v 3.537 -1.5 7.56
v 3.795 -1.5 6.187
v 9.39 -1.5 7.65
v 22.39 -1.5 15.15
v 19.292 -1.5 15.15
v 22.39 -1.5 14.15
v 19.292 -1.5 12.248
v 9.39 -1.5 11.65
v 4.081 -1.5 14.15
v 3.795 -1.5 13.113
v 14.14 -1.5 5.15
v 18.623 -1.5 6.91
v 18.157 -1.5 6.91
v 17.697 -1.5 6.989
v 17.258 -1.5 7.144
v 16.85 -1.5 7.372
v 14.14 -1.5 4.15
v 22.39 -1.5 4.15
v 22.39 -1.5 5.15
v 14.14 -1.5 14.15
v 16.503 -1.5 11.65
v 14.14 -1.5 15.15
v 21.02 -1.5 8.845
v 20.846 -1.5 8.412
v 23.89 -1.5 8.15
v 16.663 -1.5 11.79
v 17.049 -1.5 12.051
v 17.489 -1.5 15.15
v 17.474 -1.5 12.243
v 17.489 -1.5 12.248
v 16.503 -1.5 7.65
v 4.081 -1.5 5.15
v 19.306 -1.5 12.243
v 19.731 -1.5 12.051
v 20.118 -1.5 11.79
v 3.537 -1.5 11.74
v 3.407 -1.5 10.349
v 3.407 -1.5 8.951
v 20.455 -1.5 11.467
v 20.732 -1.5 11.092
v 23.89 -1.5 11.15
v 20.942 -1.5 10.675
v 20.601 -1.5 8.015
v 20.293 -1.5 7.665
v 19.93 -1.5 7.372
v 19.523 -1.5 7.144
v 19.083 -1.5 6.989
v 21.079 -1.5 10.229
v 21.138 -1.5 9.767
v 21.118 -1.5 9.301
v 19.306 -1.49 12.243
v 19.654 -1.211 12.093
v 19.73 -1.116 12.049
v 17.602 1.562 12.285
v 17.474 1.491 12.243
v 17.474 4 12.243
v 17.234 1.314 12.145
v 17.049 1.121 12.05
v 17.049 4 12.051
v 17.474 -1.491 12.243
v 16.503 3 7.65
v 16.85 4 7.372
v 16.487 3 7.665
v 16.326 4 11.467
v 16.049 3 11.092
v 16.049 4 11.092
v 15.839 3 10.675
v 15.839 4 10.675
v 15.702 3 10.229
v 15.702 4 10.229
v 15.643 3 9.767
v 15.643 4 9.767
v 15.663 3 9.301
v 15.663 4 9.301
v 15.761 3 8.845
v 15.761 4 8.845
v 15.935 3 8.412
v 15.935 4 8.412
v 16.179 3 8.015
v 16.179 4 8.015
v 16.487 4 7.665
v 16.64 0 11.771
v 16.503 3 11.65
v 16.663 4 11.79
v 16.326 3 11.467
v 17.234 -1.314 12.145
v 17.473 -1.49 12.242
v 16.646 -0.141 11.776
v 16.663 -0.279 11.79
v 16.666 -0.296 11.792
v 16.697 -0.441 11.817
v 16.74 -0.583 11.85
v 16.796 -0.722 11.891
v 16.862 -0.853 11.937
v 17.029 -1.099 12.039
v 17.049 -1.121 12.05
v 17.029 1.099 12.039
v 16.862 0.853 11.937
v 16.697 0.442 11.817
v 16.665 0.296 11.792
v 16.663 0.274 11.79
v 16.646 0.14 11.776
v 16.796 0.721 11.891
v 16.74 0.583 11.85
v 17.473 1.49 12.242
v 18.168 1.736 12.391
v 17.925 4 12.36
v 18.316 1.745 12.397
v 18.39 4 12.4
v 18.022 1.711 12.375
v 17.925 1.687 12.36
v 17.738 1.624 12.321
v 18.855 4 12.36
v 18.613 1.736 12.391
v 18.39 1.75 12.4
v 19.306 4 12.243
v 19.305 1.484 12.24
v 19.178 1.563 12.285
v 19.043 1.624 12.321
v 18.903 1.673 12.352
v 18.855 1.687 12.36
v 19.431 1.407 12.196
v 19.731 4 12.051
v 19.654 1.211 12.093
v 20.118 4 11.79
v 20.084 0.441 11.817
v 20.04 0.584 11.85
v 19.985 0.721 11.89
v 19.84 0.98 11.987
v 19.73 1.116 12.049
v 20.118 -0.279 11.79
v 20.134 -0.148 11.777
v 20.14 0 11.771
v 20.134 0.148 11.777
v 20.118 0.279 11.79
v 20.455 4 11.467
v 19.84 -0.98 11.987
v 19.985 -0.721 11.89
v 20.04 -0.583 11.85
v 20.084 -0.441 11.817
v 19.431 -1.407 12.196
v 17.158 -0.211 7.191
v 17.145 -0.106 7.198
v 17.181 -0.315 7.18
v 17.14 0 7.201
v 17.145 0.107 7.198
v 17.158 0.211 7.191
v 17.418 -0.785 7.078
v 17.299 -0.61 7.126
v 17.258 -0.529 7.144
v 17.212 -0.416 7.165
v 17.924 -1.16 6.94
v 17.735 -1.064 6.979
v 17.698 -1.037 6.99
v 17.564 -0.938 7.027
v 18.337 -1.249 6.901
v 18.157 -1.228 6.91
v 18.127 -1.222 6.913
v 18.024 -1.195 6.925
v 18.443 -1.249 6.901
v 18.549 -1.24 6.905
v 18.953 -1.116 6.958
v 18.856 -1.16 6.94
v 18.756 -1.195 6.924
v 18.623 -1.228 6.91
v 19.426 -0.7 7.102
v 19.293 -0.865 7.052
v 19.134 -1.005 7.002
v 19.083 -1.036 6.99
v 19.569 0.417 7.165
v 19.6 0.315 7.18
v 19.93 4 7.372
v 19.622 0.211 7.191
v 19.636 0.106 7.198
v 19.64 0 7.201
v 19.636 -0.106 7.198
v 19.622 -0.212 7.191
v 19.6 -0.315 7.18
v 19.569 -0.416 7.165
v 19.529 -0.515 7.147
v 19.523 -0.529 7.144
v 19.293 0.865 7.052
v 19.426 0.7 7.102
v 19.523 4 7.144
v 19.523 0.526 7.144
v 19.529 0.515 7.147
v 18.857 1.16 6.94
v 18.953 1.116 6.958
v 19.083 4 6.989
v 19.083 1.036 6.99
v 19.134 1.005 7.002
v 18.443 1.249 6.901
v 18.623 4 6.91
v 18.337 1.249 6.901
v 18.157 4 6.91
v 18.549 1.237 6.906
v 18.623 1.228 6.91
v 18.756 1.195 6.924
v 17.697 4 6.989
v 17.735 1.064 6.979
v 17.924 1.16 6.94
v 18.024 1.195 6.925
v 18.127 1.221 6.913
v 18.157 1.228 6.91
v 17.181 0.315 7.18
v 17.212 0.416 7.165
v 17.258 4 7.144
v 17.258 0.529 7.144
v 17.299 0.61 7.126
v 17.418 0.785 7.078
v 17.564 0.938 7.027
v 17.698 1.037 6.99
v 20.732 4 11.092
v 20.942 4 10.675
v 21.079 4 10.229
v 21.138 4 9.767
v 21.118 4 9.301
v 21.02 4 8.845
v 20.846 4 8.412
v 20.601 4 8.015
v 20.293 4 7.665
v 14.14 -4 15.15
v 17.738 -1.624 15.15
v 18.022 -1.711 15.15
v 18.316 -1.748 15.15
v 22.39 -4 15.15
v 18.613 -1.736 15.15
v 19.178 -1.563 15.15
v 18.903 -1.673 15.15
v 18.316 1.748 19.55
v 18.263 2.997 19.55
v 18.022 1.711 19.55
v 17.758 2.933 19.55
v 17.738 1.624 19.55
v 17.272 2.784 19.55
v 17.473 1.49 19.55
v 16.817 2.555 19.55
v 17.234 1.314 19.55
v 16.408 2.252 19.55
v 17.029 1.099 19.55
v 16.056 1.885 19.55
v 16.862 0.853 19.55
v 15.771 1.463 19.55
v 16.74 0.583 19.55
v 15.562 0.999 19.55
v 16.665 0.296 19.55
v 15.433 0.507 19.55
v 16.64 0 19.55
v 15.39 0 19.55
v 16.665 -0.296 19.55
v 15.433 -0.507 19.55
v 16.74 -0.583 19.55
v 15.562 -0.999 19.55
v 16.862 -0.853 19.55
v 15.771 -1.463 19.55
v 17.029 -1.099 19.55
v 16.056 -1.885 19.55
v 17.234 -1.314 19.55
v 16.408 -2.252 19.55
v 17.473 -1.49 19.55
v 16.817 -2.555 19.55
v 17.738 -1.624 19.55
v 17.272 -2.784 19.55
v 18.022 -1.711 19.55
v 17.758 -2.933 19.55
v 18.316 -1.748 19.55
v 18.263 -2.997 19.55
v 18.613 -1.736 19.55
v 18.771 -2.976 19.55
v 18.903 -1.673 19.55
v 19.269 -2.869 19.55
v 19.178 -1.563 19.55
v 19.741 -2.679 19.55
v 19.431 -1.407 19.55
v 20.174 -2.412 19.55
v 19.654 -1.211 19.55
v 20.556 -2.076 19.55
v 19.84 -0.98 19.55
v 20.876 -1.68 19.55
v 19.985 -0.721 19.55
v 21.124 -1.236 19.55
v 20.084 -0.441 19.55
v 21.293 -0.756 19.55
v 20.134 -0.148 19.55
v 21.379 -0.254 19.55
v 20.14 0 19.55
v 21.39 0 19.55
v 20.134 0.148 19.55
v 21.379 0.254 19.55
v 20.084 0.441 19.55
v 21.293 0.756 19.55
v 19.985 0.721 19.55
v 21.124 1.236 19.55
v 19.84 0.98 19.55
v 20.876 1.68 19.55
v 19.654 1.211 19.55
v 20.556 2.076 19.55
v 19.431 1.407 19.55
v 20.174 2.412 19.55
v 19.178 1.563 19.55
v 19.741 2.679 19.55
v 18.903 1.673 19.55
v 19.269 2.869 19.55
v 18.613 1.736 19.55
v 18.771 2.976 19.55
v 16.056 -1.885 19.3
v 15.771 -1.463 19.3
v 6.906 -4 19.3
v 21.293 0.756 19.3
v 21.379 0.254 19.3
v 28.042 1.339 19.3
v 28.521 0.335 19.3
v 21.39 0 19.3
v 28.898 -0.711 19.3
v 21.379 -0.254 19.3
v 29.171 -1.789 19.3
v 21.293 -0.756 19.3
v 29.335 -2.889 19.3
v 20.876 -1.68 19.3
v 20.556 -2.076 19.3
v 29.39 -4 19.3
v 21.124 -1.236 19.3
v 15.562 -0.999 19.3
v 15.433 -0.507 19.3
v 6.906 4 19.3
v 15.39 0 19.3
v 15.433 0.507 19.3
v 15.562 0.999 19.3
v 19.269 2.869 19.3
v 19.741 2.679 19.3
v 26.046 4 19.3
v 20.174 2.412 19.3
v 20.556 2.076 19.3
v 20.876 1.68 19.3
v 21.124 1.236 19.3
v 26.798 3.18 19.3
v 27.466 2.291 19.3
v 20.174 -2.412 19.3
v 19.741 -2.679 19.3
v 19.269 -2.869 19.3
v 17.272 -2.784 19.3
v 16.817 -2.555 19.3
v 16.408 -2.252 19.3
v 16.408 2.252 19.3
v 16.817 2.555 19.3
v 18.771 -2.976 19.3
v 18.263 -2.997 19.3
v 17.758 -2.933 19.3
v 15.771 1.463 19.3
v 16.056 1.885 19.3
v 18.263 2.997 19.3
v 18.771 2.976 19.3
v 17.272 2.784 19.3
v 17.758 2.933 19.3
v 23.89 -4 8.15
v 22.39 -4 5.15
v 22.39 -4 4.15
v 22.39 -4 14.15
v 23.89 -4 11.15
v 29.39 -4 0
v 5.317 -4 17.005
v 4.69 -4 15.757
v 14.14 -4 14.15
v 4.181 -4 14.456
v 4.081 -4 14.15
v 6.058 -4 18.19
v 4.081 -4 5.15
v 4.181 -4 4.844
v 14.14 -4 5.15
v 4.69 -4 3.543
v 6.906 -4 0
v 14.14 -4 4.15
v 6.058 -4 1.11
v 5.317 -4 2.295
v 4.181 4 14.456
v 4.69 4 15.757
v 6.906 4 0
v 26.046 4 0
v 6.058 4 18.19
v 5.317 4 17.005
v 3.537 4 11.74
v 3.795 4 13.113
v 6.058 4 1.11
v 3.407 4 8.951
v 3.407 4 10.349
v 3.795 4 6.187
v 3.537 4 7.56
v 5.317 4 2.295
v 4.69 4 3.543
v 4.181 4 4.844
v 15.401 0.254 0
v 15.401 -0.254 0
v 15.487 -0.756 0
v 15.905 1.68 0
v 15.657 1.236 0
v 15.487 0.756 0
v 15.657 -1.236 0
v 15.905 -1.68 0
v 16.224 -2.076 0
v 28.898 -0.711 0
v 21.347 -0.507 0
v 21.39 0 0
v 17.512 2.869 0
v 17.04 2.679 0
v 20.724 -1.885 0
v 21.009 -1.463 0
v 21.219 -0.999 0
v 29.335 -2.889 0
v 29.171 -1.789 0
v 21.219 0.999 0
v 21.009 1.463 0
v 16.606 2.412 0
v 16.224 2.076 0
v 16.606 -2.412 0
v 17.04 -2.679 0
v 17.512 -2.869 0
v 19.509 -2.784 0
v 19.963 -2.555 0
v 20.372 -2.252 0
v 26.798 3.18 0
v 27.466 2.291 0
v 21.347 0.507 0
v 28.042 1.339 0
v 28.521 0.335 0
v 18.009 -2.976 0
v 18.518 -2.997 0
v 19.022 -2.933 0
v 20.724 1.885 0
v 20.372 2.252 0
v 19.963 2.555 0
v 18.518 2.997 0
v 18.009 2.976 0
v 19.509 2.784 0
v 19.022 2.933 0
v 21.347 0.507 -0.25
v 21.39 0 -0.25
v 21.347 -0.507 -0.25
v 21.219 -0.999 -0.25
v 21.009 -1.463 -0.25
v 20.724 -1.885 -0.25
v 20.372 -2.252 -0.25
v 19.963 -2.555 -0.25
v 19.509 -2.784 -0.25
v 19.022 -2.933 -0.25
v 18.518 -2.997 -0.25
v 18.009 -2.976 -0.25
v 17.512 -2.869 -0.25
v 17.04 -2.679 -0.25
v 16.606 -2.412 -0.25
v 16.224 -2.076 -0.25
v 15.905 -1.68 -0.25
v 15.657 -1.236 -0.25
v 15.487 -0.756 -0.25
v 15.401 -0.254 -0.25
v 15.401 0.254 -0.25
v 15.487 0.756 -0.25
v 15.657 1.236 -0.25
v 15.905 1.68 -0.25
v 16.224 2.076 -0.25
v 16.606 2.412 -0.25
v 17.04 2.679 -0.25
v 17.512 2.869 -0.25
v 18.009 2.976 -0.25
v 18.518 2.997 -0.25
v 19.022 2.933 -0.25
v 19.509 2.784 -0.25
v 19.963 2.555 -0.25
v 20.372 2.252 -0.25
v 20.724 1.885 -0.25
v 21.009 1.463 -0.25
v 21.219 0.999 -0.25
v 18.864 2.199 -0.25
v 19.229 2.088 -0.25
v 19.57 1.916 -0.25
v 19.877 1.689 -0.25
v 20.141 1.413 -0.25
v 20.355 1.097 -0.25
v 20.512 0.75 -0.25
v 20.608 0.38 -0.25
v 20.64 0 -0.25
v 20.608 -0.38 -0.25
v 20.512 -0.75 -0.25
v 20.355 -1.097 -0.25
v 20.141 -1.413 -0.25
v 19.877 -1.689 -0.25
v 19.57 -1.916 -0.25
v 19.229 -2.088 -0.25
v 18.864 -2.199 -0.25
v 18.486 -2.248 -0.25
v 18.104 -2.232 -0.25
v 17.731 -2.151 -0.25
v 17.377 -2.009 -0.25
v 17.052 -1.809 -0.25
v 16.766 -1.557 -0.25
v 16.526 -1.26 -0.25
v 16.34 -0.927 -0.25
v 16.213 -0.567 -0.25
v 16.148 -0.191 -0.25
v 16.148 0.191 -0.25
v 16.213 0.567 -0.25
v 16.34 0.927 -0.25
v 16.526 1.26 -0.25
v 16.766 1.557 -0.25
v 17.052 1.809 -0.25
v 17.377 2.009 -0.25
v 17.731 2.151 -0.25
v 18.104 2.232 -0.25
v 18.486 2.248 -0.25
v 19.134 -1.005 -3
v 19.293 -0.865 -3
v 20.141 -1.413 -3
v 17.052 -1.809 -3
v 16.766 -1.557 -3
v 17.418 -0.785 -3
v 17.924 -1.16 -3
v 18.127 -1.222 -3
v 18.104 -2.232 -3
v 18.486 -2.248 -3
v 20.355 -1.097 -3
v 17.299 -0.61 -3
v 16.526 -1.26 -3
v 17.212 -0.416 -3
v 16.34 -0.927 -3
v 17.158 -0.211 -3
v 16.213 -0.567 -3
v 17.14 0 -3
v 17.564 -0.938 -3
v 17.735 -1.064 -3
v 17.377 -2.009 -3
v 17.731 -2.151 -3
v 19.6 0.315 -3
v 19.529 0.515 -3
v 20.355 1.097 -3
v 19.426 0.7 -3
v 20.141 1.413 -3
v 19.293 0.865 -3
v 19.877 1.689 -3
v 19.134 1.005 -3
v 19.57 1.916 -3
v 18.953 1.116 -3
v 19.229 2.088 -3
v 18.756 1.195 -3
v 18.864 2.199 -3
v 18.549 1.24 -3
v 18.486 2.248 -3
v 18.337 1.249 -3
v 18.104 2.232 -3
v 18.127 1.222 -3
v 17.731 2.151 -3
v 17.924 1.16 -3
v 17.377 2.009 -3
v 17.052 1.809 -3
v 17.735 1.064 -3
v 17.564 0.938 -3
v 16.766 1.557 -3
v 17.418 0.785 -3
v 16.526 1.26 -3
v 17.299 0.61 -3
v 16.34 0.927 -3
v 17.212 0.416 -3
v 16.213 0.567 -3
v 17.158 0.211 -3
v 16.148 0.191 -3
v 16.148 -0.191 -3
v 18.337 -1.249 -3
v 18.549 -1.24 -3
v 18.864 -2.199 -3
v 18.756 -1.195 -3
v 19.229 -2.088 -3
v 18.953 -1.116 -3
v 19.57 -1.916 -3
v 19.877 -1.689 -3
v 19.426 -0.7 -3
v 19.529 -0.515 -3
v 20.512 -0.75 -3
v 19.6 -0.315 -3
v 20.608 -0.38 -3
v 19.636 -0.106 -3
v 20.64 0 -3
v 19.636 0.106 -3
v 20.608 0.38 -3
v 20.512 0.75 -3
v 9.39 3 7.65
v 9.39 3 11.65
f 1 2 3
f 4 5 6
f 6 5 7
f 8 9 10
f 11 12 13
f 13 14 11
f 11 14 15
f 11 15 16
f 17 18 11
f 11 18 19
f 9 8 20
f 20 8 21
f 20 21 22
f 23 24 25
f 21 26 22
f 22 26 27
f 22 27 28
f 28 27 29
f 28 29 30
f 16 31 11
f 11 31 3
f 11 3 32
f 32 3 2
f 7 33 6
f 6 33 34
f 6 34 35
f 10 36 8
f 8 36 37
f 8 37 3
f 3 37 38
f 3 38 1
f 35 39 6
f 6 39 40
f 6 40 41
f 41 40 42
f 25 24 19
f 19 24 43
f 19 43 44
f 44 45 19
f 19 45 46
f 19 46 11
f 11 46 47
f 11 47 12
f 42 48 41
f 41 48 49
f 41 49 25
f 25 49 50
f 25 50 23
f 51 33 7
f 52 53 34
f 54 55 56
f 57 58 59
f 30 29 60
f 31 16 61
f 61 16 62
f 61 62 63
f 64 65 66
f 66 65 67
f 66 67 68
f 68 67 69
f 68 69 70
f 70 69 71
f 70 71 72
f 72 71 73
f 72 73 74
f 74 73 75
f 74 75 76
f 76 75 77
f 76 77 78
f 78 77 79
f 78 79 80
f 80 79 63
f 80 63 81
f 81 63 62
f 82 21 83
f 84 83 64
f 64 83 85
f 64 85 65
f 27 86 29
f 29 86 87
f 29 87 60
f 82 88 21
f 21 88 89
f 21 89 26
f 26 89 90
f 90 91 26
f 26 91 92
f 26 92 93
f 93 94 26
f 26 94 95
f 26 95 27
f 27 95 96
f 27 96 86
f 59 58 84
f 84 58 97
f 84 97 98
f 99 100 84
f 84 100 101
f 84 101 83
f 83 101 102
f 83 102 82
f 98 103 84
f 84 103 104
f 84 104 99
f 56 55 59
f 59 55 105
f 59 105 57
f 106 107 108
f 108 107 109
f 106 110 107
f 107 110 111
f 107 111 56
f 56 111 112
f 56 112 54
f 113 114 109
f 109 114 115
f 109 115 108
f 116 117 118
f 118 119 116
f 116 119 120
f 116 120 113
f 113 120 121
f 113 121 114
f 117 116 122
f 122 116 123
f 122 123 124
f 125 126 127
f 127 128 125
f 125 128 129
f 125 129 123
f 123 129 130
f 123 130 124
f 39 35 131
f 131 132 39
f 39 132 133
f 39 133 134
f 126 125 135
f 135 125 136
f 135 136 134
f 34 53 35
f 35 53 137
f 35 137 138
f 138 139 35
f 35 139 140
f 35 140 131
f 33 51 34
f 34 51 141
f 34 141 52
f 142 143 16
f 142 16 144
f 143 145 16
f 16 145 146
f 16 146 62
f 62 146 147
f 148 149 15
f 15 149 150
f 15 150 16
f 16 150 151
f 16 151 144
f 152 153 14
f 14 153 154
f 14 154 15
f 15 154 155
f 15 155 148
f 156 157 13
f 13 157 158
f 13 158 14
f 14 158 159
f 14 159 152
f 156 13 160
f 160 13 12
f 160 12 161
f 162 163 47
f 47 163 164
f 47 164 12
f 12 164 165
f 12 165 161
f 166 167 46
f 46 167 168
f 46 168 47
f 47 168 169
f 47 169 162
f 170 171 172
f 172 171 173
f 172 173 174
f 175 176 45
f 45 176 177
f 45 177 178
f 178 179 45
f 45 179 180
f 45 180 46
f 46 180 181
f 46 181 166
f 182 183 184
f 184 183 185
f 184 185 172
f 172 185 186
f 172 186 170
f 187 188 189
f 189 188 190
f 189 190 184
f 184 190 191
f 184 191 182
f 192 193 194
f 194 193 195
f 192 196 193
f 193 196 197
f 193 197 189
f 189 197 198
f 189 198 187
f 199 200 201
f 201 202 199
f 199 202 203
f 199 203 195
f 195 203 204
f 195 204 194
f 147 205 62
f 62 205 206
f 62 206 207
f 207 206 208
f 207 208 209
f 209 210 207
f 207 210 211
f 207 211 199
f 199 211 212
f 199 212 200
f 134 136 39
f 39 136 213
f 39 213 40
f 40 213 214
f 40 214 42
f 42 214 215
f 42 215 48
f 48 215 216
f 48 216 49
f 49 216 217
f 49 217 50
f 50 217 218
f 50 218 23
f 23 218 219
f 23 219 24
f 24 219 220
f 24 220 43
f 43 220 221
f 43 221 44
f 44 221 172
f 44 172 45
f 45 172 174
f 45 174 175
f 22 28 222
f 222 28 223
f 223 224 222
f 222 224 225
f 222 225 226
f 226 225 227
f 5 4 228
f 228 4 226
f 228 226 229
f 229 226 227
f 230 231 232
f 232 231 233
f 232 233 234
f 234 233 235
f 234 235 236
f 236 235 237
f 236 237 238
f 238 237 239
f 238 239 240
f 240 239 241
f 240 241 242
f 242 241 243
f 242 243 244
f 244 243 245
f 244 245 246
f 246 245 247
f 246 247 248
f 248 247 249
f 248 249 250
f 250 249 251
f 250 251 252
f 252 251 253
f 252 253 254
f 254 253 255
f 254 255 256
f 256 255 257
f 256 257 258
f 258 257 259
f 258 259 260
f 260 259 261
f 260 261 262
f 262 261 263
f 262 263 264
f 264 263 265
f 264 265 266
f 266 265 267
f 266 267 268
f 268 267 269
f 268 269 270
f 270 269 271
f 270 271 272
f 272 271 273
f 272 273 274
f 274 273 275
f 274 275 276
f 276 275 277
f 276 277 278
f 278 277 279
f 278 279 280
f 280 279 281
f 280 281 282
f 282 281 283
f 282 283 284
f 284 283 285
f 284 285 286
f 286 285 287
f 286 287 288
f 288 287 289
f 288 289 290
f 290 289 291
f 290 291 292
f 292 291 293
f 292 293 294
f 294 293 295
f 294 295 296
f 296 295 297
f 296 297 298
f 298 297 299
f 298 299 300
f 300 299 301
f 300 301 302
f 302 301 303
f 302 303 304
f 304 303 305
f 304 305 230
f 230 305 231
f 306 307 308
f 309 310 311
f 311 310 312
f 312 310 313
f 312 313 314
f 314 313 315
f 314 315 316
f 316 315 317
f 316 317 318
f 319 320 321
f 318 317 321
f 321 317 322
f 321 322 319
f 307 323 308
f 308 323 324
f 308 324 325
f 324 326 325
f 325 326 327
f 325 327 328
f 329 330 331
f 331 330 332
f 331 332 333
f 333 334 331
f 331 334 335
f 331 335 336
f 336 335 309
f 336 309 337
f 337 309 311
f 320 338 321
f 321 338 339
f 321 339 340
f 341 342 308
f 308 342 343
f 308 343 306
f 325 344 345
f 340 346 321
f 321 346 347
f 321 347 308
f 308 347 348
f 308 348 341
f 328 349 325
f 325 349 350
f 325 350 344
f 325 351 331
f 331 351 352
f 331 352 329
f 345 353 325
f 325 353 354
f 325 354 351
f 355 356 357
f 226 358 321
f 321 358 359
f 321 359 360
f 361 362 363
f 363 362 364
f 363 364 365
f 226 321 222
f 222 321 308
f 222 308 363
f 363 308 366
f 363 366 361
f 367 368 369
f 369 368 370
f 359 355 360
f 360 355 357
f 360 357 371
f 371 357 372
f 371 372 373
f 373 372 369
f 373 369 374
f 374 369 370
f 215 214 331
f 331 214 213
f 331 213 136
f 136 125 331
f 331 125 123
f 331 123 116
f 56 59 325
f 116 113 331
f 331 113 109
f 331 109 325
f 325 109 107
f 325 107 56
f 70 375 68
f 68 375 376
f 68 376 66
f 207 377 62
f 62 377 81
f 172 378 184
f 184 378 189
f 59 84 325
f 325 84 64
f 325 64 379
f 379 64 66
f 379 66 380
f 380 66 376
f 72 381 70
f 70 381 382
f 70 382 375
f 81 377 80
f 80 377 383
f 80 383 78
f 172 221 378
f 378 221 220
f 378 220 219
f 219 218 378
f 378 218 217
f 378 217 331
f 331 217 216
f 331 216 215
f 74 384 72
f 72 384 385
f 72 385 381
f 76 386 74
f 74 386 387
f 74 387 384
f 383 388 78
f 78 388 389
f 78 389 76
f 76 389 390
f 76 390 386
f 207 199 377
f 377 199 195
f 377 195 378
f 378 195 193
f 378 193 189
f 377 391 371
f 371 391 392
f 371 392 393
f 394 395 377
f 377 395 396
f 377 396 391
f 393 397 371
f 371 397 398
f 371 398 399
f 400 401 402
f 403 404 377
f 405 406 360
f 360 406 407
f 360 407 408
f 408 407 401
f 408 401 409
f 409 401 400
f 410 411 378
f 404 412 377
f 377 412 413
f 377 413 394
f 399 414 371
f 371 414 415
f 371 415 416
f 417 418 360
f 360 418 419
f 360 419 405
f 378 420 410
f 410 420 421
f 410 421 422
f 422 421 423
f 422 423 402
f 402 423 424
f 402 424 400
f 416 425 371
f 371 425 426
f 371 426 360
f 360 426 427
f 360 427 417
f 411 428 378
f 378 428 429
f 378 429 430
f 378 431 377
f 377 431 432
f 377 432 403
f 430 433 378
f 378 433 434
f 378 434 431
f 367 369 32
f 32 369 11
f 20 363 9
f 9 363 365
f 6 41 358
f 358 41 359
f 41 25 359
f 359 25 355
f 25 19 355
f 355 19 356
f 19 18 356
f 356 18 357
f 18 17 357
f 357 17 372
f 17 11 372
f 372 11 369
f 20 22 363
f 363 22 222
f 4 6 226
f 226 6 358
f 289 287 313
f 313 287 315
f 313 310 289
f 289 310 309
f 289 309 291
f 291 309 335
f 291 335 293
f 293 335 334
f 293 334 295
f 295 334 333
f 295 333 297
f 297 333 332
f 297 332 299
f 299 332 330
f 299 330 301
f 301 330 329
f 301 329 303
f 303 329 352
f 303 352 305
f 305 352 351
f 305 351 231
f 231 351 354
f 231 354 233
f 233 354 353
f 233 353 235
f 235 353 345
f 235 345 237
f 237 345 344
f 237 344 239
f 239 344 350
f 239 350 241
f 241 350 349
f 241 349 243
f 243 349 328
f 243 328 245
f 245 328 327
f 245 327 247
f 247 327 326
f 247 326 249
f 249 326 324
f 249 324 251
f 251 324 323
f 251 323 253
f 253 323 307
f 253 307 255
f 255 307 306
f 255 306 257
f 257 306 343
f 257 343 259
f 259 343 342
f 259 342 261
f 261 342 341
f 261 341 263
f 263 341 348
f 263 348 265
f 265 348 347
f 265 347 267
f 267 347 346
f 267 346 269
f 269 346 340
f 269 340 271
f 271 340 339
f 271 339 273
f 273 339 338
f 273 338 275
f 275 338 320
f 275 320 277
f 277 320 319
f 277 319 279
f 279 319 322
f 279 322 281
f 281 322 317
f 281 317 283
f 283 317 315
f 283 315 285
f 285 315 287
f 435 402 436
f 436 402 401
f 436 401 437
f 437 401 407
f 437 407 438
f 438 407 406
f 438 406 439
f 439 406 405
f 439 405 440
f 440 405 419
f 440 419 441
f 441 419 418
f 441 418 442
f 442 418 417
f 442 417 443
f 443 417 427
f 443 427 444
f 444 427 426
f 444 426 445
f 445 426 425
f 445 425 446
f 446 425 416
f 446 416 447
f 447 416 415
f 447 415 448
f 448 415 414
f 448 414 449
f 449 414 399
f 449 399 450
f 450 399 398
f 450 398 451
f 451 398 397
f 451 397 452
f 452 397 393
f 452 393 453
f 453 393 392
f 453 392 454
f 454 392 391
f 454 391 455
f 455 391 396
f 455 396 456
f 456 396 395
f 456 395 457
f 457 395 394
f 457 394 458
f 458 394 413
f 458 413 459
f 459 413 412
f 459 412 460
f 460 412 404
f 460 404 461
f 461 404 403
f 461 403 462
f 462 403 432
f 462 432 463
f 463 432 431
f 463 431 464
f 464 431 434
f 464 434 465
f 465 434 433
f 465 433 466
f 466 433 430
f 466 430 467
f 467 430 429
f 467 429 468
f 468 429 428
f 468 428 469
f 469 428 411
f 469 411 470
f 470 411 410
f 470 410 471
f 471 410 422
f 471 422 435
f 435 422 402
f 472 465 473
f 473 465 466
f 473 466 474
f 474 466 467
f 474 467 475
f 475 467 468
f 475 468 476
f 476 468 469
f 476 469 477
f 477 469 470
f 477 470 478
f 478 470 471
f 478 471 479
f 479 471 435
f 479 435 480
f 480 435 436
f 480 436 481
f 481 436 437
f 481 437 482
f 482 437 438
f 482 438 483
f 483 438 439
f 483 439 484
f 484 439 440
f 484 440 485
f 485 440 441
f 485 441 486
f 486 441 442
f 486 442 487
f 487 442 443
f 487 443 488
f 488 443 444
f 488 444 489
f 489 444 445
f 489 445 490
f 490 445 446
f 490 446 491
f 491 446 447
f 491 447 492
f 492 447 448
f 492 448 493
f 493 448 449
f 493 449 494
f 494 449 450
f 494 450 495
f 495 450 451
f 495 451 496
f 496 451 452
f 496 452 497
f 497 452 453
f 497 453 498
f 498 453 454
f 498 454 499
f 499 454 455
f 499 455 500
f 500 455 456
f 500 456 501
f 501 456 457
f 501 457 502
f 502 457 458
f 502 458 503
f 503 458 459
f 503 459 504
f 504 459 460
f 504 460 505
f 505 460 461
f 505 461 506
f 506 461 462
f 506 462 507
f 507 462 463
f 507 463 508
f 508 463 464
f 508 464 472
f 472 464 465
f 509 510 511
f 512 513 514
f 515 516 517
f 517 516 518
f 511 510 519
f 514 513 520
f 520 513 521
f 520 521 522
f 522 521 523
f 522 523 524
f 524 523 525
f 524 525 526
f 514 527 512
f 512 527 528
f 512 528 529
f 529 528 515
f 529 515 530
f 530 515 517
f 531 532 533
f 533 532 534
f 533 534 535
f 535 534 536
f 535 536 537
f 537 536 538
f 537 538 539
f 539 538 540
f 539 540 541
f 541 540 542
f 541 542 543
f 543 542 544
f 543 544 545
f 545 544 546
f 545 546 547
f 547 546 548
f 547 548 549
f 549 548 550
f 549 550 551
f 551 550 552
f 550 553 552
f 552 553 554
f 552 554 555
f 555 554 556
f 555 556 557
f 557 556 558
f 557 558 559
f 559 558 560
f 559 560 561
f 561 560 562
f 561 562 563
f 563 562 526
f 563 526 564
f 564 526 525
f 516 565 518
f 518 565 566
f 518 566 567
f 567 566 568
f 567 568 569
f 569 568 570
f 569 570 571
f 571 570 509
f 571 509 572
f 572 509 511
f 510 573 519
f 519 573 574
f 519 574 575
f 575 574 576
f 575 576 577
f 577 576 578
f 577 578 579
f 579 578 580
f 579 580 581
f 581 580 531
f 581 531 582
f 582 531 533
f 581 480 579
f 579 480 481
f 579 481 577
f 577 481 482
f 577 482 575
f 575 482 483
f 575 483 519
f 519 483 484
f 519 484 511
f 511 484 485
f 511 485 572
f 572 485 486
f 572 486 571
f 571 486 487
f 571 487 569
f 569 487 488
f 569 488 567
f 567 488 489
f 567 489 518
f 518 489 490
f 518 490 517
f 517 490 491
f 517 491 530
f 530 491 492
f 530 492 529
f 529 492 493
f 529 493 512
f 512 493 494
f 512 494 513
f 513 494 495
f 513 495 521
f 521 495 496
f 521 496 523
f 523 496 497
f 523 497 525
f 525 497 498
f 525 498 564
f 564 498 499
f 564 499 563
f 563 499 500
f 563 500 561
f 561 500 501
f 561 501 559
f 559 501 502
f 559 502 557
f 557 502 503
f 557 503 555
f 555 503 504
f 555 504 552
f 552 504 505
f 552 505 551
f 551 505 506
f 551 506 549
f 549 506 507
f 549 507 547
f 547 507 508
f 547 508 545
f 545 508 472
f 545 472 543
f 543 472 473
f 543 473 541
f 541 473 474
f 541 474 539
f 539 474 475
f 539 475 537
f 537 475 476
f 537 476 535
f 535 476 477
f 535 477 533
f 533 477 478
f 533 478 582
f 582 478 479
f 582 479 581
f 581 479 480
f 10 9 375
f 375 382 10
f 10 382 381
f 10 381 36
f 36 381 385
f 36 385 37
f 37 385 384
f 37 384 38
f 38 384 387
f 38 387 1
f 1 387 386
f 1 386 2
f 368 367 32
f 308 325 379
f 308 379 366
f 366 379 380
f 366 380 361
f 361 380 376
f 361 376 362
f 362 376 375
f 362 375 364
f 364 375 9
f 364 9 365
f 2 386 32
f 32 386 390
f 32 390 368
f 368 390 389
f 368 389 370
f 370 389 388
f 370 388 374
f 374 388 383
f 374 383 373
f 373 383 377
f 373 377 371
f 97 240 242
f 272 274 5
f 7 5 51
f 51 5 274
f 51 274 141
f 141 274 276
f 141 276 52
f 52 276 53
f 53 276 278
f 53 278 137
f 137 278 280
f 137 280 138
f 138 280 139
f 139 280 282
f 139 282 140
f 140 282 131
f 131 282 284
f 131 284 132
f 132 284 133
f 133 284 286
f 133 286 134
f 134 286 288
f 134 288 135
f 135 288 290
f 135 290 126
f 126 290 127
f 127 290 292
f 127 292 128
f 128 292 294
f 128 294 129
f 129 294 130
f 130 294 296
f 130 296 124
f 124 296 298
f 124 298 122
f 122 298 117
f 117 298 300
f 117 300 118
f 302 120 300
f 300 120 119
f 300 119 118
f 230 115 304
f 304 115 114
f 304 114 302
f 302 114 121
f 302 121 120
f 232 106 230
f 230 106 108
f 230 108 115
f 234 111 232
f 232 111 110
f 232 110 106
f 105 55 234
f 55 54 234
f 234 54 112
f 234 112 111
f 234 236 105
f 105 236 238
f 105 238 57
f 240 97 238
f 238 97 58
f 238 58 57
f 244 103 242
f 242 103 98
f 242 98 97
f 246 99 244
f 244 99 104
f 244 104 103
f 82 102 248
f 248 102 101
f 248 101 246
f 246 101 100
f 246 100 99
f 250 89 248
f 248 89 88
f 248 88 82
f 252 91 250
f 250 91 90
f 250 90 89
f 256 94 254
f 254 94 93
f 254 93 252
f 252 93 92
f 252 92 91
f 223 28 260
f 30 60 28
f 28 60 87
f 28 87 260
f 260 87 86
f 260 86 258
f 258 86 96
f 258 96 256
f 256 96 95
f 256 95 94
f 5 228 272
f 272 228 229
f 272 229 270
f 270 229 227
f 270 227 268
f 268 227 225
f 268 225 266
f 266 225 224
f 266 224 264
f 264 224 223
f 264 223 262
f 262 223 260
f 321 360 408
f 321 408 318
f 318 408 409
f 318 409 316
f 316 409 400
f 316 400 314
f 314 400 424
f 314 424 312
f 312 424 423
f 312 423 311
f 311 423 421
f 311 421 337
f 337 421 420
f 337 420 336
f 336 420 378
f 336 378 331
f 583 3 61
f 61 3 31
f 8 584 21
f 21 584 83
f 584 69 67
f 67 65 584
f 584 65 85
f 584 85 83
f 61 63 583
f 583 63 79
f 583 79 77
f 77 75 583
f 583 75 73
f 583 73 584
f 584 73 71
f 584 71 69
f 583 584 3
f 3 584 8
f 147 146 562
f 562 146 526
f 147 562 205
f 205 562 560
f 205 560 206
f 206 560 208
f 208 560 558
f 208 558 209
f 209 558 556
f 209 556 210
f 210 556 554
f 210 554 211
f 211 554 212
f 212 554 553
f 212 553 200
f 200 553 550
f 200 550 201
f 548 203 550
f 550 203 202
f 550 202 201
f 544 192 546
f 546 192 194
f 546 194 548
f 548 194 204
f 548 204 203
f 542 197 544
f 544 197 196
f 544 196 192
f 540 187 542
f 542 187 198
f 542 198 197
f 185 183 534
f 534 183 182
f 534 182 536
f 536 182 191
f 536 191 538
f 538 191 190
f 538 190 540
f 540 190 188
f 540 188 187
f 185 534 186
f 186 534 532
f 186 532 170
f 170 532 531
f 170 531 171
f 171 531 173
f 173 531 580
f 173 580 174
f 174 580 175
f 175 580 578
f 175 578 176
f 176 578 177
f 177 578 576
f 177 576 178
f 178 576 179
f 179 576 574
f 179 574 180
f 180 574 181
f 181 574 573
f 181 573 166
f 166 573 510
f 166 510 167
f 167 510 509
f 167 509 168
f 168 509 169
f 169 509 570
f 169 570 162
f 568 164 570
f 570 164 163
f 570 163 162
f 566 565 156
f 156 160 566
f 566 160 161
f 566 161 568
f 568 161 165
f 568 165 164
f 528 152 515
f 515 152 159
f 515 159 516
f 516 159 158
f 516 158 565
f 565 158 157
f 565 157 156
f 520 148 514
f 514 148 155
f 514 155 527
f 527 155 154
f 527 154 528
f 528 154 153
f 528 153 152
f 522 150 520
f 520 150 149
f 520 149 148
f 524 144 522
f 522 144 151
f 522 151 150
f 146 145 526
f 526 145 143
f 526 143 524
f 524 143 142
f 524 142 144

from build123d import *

# Parameters (mm, degrees)
BOSS_EXTRUDE1_DEPTH        = 19.3
POT_START                  = -4
POT_INSERT_DEPTH           = 2.5
POT_START_2                = 4
SKETCH6_R                  = 2.75
POT_HOLE_DEPTH             = 40.387513448
SKETCH8_R                  = 2.25
BOSS_EXTRUDE2_DEPTH        = 3
BOSS_EXTRUDE4_START        = 19.3
SKETCH18_R                 = 3
BOSS_EXTRUDE4_DEPTH        = 0.25
BOSS_EXTRUDE3_START        = -0.25
SKETCH17_R                 = 3
BOSS_EXTRUDE3_DEPTH        = 0.25
ABDUCTION_START            = 4
ABDUCTION_CURVE_DEPTH      = 40.524478998
ABDUCTION_START_2          = 11
SKETCH13_R                 = 1.75
ABDUCTION_CABLE_HOLE_DEPTH = 9
FLEX_EXTEND_CURVE_DEPTH    = 36.524479064
CUT_EXTRUDE1_START         = -1.5
SKETCH15_W                 = 9
SKETCH15_H                 = 4
CUT_EXTRUDE1_DEPTH         = 4.5
SKETCH16_R                 = 1.25
CUT_EXTRUDE2_DEPTH         = 38.259745213


with BuildPart() as part:
    # Sketch1 → Boss-Extrude1 (new body)
    with BuildSketch(Plane.XY):
        Polygon((1.390238312, 4), (1.390238312, -4), (18.390238312, -4), (29.390238312, -4), (29.390238312, 4), align=None)
    extrude(amount=BOSS_EXTRUDE1_DEPTH)

    # Sketch5 → Pot Insert (cut)
    with BuildSketch(Plane(origin=(0, 0, 0), x_dir=(1, 0, 0), z_dir=(0, 1, 0)).offset(POT_START)):
        Polygon((23.890238312, -11.15), (23.890238312, -8.15), (22.390238312, -5.15), (22.390238312, -4.15), (18.390238312, -4.15), (14.140238312, -4.15), (14.140238312, -5.15), (8.890238312, -5.15), (1.390238312, -5.15), (1.390238312, -9.15), (1.390238312, -14.15), (8.890238312, -14.15), (14.140238312, -14.15), (14.140238312, -15.15), (18.390238312, -15.15), (22.390238312, -15.15), (22.390238312, -14.15), align=None)
    extrude(amount=POT_INSERT_DEPTH, mode=Mode.SUBTRACT)

    # Sketch6 → Pot Hole (cut, through all)
    with BuildSketch(Plane(origin=(0, 0, 0), x_dir=(1, 0, 0), z_dir=(0, 1, 0)).offset(POT_START_2)):
        with Locations((18.390238312, -9.65)):
            Circle(SKETCH6_R)
    extrude(amount=-POT_HOLE_DEPTH, mode=Mode.SUBTRACT)

    # Sketch8 → Boss-Extrude2 (add)
    with BuildSketch(Plane.XY):
        with Locations((18.390238312, 0)):
            Circle(SKETCH8_R)
    extrude(amount=-BOSS_EXTRUDE2_DEPTH)

    # Sketch18 → Boss-Extrude4 (add)
    with BuildSketch(Plane.XY.offset(BOSS_EXTRUDE4_START)):
        with Locations((18.390238312, 0)):
            Circle(SKETCH18_R)
    extrude(amount=BOSS_EXTRUDE4_DEPTH)

    # Sketch17 → Boss-Extrude3 (add)
    with BuildSketch(Plane.XY.offset(BOSS_EXTRUDE3_START)):
        with Locations((18.390238312, 0)):
            Circle(SKETCH17_R)
    extrude(amount=BOSS_EXTRUDE3_DEPTH)

    # Sketch7 → Abduction Curve (cut, through all)
    with BuildSketch(Plane(origin=(0, 0, 0), x_dir=(1, 0, 0), z_dir=(0, 1, 0)).offset(ABDUCTION_START)):
        with BuildLine():
            Line((1.390238312, -24.65), (18.390238312, -24.65))
            ThreePointArc((18.390238312, -24.65), (3.390238312, -9.65), (18.390238312, 5.35))
            Line((18.390238312, 5.35), (1.390238312, 5.35))
            Line((1.390238312, 5.35), (1.390238312, -24.65))
        make_face()
    extrude(amount=-ABDUCTION_CURVE_DEPTH, mode=Mode.SUBTRACT)

    # Sketch13 → Abduction Cable Hole (cut)
    with BuildSketch(Plane.XY.offset(ABDUCTION_START_2)):
        with Locations((18.390238312, 0)):
            Circle(SKETCH13_R)
    extrude(amount=ABDUCTION_CABLE_HOLE_DEPTH, mode=Mode.SUBTRACT)

    # Sketch14 → Flex-Extend Curve (cut, through all)
    with BuildSketch(Plane.XY):
        with BuildLine():
            Line((29.390238312, 7.241896464), (18.148341849, 7.241896464))
            ThreePointArc((18.148341849, 7.241896464), (26.097563072, 3.949221223), (29.390238312, -4))
            Line((29.390238312, -4), (29.390238312, 7.241896464))
        make_face()
    extrude(amount=FLEX_EXTEND_CURVE_DEPTH, mode=Mode.SUBTRACT)

    # Sketch15 → Cut-Extrude1 (cut)
    with BuildSketch(Plane(origin=(0, 0, 0), x_dir=(1, 0, 0), z_dir=(0, 1, 0)).offset(CUT_EXTRUDE1_START)):
        with Locations((13.890238312, -9.65)):
            Rectangle(SKETCH15_W, SKETCH15_H)
    extrude(amount=CUT_EXTRUDE1_DEPTH, mode=Mode.SUBTRACT)

    # Sketch16 → Cut-Extrude2 (cut, through all)
    with BuildSketch(Plane(origin=(0, 0, -3), x_dir=(-1, 0, 0), z_dir=(0, 0, -1))):
        with Locations((-18.390238312, 0)):
            Circle(SKETCH16_R)
    extrude(amount=-CUT_EXTRUDE2_DEPTH, mode=Mode.SUBTRACT)


solid = part.part
